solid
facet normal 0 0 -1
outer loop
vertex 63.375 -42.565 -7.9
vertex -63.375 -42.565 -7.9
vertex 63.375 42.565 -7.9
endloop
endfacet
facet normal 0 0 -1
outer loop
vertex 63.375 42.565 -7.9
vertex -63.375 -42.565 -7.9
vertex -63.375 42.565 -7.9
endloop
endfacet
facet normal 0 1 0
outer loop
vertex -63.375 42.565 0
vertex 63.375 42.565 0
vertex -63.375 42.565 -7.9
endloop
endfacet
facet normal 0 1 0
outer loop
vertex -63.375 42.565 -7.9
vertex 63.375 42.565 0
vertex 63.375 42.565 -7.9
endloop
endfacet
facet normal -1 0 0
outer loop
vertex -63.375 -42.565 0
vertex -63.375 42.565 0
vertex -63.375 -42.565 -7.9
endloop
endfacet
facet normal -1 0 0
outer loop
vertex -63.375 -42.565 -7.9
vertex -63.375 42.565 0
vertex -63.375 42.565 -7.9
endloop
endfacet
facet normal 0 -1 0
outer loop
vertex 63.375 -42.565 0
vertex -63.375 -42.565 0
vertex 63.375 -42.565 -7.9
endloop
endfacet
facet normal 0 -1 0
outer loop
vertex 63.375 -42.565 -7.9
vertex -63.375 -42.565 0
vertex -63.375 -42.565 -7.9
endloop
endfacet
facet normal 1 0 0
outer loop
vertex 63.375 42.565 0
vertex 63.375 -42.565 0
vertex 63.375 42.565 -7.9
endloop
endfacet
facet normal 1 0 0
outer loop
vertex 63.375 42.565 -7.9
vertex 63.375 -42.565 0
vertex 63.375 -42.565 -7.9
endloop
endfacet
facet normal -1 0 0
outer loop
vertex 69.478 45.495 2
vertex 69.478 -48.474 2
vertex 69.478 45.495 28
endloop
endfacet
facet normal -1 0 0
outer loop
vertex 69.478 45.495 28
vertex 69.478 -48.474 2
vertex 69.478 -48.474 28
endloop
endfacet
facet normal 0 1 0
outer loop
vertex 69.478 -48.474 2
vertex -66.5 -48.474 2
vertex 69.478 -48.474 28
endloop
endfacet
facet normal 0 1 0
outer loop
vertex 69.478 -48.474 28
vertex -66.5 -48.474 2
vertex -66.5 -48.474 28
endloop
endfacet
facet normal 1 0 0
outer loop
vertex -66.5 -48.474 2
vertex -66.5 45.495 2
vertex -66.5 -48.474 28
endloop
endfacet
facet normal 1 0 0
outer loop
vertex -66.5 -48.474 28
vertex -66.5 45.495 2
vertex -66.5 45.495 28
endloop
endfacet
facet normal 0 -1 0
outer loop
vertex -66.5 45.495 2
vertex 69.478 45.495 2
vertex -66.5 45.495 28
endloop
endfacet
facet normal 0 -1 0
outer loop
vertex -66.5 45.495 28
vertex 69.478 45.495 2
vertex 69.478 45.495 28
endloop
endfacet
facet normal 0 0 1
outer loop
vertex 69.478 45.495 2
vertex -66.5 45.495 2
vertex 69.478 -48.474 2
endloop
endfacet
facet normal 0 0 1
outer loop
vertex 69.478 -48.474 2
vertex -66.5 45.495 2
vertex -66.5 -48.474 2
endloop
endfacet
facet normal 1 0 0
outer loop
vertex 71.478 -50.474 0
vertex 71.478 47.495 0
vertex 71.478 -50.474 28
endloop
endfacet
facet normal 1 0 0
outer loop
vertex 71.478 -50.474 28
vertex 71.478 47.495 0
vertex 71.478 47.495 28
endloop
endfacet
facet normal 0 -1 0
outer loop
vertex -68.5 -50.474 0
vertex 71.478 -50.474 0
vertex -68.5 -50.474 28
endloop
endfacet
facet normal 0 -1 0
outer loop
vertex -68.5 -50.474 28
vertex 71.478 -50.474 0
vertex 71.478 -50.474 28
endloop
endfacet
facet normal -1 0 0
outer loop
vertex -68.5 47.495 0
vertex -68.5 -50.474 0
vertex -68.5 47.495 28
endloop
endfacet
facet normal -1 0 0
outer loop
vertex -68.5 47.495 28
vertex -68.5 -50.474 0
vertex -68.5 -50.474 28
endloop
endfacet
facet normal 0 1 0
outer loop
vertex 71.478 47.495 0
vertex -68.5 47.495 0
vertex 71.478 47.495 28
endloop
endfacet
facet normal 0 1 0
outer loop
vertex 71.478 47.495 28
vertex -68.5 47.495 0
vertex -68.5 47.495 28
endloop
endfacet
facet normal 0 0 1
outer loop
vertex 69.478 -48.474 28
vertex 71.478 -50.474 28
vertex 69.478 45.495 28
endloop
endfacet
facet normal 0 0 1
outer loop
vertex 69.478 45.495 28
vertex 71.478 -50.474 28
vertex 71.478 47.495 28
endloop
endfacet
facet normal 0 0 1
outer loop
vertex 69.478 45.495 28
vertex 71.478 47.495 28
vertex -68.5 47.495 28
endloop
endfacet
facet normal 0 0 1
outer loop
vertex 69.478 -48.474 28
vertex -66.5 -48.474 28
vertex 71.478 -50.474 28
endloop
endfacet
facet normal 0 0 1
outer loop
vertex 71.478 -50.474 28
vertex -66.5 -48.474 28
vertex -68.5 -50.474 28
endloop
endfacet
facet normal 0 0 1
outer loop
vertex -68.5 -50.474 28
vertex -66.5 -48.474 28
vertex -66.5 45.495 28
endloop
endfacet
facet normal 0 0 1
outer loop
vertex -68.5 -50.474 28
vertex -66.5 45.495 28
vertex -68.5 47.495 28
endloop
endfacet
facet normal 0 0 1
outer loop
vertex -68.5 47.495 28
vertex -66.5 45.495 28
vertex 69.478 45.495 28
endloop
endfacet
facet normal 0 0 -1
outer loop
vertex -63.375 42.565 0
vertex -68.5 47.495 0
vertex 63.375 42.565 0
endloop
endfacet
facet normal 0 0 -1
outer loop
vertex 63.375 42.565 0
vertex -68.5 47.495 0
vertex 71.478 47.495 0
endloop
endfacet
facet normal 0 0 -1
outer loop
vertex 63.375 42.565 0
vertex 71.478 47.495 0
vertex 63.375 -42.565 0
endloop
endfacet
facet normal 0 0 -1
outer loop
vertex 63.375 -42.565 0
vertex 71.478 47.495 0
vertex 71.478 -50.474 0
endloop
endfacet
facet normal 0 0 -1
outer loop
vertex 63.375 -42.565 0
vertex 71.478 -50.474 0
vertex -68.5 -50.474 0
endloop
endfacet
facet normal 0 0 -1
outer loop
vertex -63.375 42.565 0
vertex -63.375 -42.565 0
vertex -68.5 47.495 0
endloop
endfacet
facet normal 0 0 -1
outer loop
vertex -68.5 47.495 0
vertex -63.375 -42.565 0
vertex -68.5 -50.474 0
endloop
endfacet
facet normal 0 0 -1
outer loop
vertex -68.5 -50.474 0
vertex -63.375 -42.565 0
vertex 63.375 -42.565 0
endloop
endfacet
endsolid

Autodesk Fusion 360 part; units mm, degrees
sketch "Sketch1" plane through (0, 0, 0) normal (0, 0, 1) x (1, 0, 0)
  line L0 (63.375, 42.565) -> (-63.375, 42.565)
  line L1 (-63.375, 42.565) -> (-63.375, -42.565)
  line L2 (-63.375, -42.565) -> (63.375, -42.565)
  line L3 (63.375, -42.565) -> (63.375, 42.565)
  line L4 (63.375, 42.565) -> (-63.375, -42.565) construction
  line L5 (-63.375, 42.565) -> (63.375, -42.565) construction
  line L6 (-68.375, 47.565) -> (68.375, 47.565)
  line L7 (68.375, 47.565) -> (68.375, -47.565)
  line L8 (68.375, -47.565) -> (-68.375, -47.565)
  line L9 (-68.375, -47.565) -> (-68.375, 47.565)
  line L10 (-68.375, 47.565) -> (68.375, -47.565) construction
  line L11 (68.375, 47.565) -> (-68.375, -47.565) construction
  line L12 (71.5, 47.565) -> (68.5, 47.565)
  line L13 (68.5, 47.565) -> (68.5, -47.565)
  line L14 (68.5, -47.565) -> (71.5, -47.565)
  line L15 (71.5, -47.565) -> (71.5, 47.565)
  line L16 (71.5, 47.565) -> (68.5, -47.565) construction
  line L17 (68.5, 47.565) -> (71.5, -47.565) construction
  line L18 (71.4437, -50.4298) -> (-68.3063, -50.4298)
  line L19 (-68.3063, -50.4298) -> (-68.3063, -47.4298)
  line L20 (-68.3063, -47.4298) -> (71.4437, -47.4298)
  line L21 (71.4437, -47.4298) -> (71.4437, -50.4298)
  line L22 (71.4437, -50.4298) -> (-68.3063, -47.4298) construction
  line L23 (-68.3063, -50.4298) -> (71.4437, -47.4298) construction
  point P0 (70, 0)
  point P1 (1.5687, -48.9298)
  dimension "d1" = 126.75
  dimension "d2" = 85.13
  dimension "d3" = 136.75
  dimension "d4" = 95.13
  dimension "d5" = 3
  dimension "d6" = 139.75
  dimension "d7" = 3
sketch "Sketch2" plane through (0, 0, 0) normal (0, 0, 1) x (1, 0, 0)
sketch "Sketch3" plane through (0, 0, 0) normal (0, 0, 1) x (1, 0, 0)
  line L0 (71.4782, -50.4736) -> (-68.4999, -50.4736)
  line L1 (-68.4999, -50.4736) -> (-68.4999, 47.4954)
  line L2 (-68.4999, 47.4954) -> (71.4782, 47.4954)
  line L3 (71.4782, 47.4954) -> (71.4782, -50.4736)
extrude "Extrude1" add sketch "Sketch3" along normal blind 28
shell "Shell1" thickness 2 removed faces 1 at (-21.8406, -17.8173, 28)
extrude "Extrude2" add sketch "Sketch1" against normal blind 3 contours L0 L1 L2 L3
extrude "Extrude3" add 1 faces at (-21.125, -14.1883, -3) along direction (0, 0, -1) blind 4.9
